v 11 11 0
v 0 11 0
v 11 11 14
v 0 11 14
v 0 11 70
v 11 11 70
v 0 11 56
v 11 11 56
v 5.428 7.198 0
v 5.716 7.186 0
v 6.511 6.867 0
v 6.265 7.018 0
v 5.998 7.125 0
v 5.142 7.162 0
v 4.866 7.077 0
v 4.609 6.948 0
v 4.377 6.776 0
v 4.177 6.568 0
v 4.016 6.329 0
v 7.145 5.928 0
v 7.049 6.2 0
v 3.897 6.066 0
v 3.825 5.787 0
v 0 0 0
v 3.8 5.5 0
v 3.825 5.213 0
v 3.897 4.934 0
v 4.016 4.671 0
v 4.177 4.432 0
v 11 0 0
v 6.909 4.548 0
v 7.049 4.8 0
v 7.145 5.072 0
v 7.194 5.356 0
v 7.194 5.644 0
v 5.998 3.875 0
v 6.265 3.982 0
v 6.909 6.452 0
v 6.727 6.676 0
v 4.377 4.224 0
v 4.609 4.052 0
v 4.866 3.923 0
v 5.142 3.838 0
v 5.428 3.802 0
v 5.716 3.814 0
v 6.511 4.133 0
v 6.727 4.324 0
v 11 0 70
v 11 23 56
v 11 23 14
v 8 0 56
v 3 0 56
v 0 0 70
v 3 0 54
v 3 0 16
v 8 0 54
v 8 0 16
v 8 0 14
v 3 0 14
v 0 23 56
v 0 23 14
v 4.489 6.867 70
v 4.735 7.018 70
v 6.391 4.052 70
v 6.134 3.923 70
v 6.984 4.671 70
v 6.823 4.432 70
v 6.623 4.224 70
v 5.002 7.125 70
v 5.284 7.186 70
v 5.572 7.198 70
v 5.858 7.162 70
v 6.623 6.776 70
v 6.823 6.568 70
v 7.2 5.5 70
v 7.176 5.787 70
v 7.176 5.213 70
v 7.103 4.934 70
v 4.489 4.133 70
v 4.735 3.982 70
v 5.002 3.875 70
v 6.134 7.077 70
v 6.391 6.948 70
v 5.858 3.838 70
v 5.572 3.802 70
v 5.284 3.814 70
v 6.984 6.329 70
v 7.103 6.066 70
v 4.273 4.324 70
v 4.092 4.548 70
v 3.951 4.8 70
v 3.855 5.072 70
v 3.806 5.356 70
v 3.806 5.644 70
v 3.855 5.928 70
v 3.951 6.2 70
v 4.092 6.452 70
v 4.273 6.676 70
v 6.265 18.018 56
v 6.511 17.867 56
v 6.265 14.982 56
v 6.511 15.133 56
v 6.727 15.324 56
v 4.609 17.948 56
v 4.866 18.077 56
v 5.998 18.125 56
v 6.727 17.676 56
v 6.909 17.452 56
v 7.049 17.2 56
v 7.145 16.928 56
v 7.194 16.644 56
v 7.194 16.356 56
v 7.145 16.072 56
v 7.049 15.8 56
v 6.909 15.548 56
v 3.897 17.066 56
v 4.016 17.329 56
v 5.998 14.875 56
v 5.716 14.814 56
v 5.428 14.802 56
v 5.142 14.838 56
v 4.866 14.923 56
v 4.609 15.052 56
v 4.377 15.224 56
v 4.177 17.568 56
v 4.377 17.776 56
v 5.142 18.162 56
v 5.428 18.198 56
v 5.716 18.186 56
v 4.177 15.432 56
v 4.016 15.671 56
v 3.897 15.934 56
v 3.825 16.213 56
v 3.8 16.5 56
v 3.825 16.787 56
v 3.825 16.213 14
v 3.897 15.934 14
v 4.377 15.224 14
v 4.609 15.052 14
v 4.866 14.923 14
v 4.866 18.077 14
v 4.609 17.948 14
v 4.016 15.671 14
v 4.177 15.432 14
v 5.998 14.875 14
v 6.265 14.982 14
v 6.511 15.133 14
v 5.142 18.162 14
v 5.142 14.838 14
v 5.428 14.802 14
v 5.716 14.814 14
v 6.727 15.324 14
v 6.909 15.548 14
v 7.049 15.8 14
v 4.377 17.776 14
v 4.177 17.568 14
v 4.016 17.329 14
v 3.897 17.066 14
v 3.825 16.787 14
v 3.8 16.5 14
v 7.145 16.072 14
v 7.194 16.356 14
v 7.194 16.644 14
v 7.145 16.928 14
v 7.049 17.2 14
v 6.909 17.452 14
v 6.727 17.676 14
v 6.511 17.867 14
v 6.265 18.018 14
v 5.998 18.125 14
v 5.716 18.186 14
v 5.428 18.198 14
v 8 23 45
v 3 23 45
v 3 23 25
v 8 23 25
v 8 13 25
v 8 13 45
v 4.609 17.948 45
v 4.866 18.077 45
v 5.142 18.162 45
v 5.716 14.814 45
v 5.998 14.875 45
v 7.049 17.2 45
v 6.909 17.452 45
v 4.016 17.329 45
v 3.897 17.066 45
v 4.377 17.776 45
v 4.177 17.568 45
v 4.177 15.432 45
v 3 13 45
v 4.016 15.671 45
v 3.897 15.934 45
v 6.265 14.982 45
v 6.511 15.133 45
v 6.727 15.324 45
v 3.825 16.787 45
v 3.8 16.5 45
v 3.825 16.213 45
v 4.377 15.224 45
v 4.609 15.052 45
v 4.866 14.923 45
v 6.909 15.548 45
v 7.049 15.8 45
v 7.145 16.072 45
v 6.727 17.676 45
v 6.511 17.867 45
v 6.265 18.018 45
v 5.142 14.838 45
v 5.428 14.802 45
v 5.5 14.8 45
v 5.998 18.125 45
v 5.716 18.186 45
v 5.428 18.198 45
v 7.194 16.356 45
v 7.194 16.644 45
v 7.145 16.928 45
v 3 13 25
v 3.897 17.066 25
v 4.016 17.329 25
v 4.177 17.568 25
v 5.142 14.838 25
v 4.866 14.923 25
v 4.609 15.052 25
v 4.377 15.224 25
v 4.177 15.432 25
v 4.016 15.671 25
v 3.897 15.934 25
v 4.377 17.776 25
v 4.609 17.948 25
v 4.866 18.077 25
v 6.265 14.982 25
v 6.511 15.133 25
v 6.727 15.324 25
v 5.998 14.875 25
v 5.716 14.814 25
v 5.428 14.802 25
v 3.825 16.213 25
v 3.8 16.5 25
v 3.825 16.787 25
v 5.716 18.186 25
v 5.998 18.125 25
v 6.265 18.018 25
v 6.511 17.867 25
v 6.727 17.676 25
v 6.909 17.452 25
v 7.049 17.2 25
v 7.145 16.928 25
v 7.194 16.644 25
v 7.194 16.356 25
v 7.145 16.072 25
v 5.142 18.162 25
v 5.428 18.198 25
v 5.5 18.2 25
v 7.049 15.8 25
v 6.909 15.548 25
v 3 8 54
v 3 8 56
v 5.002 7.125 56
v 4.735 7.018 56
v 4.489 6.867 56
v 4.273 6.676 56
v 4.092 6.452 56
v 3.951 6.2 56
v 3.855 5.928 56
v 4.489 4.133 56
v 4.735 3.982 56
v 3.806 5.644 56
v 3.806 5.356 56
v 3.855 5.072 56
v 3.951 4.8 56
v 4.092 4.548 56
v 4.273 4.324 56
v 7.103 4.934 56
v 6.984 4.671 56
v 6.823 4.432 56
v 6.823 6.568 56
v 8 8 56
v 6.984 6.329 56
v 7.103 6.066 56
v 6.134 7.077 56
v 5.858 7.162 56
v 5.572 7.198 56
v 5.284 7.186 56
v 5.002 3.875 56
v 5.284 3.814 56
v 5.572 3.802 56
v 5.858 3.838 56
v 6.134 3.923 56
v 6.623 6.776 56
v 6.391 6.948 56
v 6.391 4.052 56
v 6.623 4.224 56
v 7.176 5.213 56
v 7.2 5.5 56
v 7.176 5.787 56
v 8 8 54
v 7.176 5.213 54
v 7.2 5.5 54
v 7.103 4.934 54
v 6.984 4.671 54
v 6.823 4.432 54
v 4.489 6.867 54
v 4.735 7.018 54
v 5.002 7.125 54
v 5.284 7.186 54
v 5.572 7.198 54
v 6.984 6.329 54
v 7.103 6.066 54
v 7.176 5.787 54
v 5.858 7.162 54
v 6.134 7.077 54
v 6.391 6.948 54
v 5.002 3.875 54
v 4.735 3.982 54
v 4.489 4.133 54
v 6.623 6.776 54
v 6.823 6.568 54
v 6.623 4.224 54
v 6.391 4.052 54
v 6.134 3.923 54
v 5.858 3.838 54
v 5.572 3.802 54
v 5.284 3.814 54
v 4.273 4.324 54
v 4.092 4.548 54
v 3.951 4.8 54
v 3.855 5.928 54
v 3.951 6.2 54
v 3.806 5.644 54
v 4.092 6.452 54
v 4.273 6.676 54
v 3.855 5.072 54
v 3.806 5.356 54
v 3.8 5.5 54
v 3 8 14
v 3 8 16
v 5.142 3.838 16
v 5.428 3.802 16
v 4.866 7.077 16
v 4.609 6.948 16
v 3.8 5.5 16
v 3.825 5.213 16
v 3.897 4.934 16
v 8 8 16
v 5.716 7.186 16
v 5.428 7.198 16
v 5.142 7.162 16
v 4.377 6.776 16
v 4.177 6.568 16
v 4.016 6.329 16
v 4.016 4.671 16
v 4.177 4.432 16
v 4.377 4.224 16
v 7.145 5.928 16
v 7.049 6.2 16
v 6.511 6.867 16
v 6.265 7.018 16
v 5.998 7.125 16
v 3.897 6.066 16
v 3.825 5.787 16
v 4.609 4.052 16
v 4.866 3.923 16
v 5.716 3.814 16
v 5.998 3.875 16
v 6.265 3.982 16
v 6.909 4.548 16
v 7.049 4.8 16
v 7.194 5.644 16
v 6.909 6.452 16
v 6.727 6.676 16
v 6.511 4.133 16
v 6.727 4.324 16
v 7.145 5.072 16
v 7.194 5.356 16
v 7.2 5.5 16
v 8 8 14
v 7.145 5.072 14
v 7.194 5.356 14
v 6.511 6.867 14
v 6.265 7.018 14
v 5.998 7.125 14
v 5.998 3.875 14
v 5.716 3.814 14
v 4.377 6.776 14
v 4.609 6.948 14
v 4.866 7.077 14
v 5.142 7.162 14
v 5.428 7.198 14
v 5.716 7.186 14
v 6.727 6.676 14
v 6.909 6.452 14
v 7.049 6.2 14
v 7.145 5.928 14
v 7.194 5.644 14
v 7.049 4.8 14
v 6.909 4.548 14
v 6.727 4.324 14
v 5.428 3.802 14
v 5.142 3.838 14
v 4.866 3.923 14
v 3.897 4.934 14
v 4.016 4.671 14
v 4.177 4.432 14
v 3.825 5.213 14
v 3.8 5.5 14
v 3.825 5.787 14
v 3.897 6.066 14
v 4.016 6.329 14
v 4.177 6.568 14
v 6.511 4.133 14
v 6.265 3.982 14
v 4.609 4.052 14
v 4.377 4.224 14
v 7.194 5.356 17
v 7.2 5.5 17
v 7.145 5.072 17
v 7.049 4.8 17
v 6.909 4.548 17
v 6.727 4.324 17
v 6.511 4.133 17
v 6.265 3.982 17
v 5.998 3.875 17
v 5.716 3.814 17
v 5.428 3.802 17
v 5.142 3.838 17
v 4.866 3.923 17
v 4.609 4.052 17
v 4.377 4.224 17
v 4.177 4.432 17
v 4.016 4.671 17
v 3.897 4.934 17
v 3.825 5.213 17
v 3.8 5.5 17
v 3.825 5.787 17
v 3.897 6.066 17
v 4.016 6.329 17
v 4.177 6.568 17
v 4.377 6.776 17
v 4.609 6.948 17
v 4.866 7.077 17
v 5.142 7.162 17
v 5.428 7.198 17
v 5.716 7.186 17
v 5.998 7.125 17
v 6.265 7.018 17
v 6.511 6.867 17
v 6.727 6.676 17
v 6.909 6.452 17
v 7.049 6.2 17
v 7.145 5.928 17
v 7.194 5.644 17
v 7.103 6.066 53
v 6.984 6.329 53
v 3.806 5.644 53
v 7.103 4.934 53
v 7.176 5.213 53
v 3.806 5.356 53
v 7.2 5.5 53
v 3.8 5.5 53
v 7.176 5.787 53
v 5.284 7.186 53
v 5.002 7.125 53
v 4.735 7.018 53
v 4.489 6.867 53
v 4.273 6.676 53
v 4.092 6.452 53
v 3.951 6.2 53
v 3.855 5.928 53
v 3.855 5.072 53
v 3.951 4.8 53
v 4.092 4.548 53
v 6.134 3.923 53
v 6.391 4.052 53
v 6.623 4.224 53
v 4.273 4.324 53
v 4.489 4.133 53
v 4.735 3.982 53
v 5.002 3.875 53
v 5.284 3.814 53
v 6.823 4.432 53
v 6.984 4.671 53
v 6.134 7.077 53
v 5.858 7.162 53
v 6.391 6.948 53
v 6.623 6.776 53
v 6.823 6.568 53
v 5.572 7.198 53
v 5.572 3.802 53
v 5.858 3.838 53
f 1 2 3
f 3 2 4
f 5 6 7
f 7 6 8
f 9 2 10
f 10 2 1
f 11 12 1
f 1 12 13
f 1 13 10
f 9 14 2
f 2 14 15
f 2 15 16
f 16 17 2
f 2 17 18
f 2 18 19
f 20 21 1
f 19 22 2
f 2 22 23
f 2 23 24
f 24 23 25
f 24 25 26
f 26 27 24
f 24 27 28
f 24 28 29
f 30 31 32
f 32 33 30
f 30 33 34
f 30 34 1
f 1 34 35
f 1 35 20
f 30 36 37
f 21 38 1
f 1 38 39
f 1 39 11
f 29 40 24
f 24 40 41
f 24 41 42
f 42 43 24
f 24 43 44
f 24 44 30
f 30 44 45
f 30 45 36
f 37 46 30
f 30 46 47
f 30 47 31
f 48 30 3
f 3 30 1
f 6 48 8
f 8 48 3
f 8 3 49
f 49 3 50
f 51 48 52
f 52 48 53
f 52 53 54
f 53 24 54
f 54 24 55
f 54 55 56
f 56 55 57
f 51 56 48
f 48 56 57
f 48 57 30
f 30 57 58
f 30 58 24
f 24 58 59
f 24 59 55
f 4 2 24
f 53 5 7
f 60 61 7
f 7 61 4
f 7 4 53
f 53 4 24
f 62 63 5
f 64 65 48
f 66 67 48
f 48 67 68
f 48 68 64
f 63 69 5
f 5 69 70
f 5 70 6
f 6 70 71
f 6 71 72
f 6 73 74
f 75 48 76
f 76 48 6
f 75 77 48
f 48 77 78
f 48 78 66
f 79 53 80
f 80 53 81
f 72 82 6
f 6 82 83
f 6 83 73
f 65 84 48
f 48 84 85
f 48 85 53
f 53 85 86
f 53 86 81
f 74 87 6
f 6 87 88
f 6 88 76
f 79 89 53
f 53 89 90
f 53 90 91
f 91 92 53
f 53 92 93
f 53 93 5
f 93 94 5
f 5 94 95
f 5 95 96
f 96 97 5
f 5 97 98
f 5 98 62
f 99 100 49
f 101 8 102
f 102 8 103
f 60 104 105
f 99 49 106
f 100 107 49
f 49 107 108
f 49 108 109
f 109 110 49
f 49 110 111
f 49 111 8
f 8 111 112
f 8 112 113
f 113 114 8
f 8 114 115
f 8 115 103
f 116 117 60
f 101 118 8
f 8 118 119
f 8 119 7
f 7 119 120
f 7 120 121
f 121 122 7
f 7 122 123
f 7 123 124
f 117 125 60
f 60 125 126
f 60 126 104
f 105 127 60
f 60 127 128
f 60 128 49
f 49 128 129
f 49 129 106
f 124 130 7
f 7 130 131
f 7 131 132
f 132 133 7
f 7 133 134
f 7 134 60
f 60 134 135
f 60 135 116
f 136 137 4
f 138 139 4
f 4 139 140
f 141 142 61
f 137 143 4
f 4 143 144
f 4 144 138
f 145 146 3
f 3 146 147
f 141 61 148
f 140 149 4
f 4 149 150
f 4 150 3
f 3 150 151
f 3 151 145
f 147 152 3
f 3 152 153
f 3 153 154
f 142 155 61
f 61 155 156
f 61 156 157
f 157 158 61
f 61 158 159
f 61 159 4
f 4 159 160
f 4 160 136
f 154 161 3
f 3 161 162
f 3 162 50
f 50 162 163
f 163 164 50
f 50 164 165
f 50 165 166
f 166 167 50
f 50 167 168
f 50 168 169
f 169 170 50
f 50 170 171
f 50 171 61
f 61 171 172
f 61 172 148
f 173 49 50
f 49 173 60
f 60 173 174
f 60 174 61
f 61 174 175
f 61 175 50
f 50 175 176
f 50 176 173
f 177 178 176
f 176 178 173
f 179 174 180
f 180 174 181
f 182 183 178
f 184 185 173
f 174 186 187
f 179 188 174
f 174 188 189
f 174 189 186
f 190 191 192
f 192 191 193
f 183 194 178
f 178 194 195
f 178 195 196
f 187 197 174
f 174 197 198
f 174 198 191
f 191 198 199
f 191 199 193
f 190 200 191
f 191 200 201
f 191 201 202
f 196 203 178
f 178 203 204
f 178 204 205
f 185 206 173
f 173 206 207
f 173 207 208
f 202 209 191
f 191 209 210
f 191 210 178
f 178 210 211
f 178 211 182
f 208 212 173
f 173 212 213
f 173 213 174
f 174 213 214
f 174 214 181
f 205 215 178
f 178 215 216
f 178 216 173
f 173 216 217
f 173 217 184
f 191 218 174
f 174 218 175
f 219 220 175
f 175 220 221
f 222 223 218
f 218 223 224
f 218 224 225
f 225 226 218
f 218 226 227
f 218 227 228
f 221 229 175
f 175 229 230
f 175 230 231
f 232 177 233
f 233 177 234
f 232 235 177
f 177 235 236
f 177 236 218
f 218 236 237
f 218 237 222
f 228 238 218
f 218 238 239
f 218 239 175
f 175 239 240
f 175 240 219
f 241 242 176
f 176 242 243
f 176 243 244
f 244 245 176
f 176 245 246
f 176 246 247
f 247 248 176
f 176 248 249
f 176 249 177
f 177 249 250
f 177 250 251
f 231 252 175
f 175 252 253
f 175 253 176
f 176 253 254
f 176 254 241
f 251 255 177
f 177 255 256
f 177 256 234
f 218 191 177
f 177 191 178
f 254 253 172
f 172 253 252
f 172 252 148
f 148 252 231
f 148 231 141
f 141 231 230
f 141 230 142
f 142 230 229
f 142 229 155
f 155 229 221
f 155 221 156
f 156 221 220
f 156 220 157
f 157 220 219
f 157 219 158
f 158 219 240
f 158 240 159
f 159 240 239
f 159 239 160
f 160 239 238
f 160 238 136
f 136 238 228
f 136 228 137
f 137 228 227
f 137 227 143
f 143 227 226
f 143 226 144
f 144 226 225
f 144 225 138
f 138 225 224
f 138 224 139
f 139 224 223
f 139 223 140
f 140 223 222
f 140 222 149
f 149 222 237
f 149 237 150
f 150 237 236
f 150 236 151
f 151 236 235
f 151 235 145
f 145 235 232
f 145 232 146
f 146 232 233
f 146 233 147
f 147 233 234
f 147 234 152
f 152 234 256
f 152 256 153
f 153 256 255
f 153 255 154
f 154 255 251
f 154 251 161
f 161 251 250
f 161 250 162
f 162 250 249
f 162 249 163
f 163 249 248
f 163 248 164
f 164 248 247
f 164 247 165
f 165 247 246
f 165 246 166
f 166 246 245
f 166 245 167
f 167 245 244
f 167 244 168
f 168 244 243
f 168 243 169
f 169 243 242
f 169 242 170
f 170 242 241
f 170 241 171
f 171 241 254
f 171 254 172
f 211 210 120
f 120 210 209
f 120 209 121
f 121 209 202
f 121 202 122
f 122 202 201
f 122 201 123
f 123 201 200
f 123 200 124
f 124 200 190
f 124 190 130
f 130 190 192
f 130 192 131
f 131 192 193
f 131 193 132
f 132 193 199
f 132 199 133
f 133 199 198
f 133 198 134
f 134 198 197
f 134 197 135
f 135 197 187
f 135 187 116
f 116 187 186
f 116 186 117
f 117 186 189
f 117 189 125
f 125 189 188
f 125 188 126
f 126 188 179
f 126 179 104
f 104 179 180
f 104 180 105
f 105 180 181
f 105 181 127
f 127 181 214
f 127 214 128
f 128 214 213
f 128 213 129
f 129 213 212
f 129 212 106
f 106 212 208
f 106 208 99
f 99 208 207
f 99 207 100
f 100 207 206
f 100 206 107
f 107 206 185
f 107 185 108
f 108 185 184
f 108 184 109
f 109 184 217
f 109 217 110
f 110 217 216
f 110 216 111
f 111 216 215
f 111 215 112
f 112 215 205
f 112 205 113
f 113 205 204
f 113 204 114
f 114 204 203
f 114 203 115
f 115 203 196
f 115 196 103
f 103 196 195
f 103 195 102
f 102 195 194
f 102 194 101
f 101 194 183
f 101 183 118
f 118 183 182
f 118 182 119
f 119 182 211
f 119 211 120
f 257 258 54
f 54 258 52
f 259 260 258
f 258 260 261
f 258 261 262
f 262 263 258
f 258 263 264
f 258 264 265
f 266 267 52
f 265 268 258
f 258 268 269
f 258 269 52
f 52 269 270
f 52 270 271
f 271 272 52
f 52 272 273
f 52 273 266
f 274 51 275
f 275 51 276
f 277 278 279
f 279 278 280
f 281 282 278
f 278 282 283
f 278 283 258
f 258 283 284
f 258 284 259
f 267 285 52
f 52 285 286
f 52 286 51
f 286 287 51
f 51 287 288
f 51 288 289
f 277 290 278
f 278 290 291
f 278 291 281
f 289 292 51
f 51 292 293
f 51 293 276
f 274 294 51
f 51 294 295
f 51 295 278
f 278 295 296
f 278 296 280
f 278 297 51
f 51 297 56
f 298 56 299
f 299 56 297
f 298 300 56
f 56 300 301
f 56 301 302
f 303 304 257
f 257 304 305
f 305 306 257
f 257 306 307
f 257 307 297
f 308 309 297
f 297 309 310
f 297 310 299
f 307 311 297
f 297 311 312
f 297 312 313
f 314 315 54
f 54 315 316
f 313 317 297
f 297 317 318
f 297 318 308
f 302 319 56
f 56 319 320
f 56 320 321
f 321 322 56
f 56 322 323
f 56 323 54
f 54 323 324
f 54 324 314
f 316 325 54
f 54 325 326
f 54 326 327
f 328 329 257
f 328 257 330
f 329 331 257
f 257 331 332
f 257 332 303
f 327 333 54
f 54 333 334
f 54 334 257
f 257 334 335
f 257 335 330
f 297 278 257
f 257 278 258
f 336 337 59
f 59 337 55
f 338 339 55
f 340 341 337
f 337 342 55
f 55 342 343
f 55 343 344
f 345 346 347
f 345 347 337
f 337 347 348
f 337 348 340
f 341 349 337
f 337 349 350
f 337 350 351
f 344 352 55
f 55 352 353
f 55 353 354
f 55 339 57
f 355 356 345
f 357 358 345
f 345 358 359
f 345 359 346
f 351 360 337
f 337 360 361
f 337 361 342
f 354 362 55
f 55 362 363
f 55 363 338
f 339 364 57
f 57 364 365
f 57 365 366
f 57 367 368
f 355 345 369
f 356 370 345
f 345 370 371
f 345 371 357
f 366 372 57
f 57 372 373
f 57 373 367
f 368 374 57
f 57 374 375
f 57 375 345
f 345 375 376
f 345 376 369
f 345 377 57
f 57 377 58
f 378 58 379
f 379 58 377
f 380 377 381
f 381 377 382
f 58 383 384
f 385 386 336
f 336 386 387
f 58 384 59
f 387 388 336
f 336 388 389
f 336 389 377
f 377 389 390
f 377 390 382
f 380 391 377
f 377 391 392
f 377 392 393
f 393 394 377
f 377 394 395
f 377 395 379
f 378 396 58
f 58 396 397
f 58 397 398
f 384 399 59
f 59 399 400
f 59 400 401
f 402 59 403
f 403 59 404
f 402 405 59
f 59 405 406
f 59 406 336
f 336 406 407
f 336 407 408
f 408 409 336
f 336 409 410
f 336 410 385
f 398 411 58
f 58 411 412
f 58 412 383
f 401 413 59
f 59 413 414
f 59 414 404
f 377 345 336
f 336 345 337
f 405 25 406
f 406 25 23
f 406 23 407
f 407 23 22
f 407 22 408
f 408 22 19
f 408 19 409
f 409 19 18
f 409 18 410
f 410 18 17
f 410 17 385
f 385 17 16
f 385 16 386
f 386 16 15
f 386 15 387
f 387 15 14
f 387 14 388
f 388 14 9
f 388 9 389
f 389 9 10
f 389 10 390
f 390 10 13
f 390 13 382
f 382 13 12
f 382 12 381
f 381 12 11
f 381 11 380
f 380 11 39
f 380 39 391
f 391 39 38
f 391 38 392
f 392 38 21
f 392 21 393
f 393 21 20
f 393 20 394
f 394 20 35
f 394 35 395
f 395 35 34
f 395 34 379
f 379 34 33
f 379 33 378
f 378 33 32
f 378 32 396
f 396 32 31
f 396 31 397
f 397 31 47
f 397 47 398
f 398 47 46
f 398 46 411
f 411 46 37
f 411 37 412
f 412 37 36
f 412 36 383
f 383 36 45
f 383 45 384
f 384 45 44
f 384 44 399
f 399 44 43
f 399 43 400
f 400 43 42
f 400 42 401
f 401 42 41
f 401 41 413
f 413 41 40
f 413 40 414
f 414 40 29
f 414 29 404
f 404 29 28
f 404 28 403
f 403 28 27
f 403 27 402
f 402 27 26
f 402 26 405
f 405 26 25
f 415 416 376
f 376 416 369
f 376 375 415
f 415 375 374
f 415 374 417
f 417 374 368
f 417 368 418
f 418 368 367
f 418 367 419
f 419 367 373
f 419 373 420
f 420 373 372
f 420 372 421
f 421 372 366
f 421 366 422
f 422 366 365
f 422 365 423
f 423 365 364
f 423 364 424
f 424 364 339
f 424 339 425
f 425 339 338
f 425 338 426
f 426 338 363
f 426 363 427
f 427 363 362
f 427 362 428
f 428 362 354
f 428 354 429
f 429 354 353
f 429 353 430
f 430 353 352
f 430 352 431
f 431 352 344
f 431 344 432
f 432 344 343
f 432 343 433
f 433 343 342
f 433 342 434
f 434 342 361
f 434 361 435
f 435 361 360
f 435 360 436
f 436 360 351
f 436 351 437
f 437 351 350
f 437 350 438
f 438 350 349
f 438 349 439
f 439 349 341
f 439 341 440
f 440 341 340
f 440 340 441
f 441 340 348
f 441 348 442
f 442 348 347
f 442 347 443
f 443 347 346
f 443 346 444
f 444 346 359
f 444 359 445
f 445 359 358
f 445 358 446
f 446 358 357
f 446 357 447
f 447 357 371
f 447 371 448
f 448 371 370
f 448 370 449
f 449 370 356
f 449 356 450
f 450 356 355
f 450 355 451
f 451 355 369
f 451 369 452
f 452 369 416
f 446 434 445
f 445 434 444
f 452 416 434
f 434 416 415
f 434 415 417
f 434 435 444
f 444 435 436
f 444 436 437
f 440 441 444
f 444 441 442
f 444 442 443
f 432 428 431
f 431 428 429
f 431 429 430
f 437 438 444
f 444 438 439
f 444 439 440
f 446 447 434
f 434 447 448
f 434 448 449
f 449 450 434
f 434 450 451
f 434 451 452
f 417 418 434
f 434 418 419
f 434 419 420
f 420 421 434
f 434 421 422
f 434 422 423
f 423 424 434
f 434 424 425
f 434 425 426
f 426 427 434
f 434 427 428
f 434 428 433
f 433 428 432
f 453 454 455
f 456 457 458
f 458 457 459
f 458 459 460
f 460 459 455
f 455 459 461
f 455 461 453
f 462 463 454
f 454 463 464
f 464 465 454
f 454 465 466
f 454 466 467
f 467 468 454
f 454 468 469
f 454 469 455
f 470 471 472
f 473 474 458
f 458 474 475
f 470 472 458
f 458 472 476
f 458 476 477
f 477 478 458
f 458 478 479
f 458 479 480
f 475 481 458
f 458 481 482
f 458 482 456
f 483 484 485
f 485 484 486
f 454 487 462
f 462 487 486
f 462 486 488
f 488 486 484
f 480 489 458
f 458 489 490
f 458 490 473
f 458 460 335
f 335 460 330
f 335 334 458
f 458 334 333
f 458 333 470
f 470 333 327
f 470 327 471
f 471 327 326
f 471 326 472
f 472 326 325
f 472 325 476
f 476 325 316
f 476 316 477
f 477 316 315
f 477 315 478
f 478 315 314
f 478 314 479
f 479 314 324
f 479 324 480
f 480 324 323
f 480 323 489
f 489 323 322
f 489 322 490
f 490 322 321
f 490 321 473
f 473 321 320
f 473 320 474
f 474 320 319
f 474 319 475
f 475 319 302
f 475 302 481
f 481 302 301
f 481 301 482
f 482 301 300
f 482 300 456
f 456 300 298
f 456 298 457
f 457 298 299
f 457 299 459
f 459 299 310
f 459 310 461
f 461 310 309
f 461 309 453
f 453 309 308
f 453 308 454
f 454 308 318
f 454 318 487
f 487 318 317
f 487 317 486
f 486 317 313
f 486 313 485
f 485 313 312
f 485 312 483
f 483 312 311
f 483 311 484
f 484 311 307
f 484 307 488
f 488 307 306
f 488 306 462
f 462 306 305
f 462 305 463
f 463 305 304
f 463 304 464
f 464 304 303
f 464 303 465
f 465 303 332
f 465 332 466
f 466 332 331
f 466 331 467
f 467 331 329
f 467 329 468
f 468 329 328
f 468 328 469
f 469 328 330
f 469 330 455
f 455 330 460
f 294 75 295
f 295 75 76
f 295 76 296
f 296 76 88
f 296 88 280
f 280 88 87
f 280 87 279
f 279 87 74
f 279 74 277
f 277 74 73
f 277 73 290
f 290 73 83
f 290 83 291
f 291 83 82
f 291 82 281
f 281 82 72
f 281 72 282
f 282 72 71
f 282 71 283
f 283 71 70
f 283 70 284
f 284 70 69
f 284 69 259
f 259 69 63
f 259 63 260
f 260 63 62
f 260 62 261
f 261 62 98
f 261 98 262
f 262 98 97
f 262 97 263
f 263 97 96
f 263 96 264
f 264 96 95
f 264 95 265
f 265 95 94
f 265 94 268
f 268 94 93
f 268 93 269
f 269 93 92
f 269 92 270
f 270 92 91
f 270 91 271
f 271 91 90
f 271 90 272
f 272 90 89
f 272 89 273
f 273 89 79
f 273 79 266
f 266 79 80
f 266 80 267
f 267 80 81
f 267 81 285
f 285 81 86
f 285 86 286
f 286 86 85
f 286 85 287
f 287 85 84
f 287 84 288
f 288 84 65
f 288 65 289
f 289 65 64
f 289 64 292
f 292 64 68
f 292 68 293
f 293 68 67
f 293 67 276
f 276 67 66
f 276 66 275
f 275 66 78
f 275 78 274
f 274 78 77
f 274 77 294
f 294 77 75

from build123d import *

# Parameters (mm, degrees)
SKETCH1_W           = 11
SKETCH1_H           = 11
BOSS_EXTRUDE1_DEPTH = 70
SKETCH2_W           = 11
SKETCH2_H           = 42
BOSS_EXTRUDE2_DEPTH = 12
SKETCH3_W           = 5
SKETCH3_H           = 20
CUT_EXTRUDE1_DEPTH  = 10
CUT_EXTRUDE2_REACH  = 63.53
SKETCH4_R           = 1.7
SKETCH5_W           = 5
SKETCH5_H           = 2
CUT_EXTRUDE3_DEPTH  = 8
SKETCH6_R           = 1.7
CUT_EXTRUDE4_DEPTH  = 17
CUT_EXTRUDE5_START  = -17
SKETCH8_R           = 1.7
CUT_EXTRUDE5_DEPTH  = 17


with BuildPart() as part:
    # Sketch1 → Boss-Extrude1 (new body)
    with BuildSketch(Plane.XY):
        with Locations((5.5, 5.5)):
            Rectangle(SKETCH1_W, SKETCH1_H)
    extrude(amount=BOSS_EXTRUDE1_DEPTH)

    # Sketch2 → Boss-Extrude2 (add)
    with BuildSketch(Plane(origin=(0, 11, 0), x_dir=(1, 0, 0), z_dir=(0, 1, 0))):
        with Locations((5.5, -35)):
            Rectangle(SKETCH2_W, SKETCH2_H)
    extrude(amount=BOSS_EXTRUDE2_DEPTH)

    # Sketch3 → Cut-Extrude1 (cut)
    with BuildSketch(Plane(origin=(0, 23, 0), x_dir=(1, 0, 0), z_dir=(0, 1, 0))):
        with Locations((5.5, -35)):
            Rectangle(SKETCH3_W, SKETCH3_H)
    extrude(amount=-CUT_EXTRUDE1_DEPTH, mode=Mode.SUBTRACT)

    # Cut-Extrude2: up to this face of the body (flat: up to its plane)
    cut_extrude2_end = Plane(part.part.faces().sort_by_distance((5.5, 17, 56))[0])
    # Sketch4 → Cut-Extrude2 (cut, up to the picked face)
    with BuildSketch(Plane(origin=(0, 0, 14), x_dir=(-1, 0, 0), z_dir=(0, 0, -1)), mode=Mode.PRIVATE) as cut_extrude2_sk1:
        with Locations((-5.5, 16.5)):
            Circle(SKETCH4_R)
    cut_extrude2_tool1 = split(extrude(cut_extrude2_sk1.sketch, amount=-CUT_EXTRUDE2_REACH, mode=Mode.PRIVATE), bisect_by=cut_extrude2_end, keep=Keep.BOTH, mode=Mode.PRIVATE)
    add(cut_extrude2_tool1.solids().sort_by(Axis((5.5, 16.5, 14), (0, 0, 1)))[0], mode=Mode.SUBTRACT)

    # Sketch5 → Cut-Extrude3 (cut)
    with BuildSketch(Plane.XZ):
        with Locations((5.5, 55)):
            Rectangle(SKETCH5_W, SKETCH5_H)
        with Locations((5.5, 15)):
            Rectangle(SKETCH5_W, SKETCH5_H)
    extrude(amount=-CUT_EXTRUDE3_DEPTH, mode=Mode.SUBTRACT)

    # Sketch6 → Cut-Extrude4 (cut)
    with BuildSketch(Plane(origin=(0, 0, 0), x_dir=(-1, 0, 0), z_dir=(0, 0, -1))):
        with Locations((-5.5, 5.5)):
            Circle(SKETCH6_R)
    extrude(amount=-CUT_EXTRUDE4_DEPTH, mode=Mode.SUBTRACT)

    # Sketch8 → Cut-Extrude5 (cut)
    with BuildSketch(Plane.XY.offset(70).offset(CUT_EXTRUDE5_START)):
        with Locations(Location((5.5, 5.5, 0), (0, 0, 180))):
            Circle(SKETCH8_R)
    extrude(amount=CUT_EXTRUDE5_DEPTH, mode=Mode.SUBTRACT)


solid = part.part
